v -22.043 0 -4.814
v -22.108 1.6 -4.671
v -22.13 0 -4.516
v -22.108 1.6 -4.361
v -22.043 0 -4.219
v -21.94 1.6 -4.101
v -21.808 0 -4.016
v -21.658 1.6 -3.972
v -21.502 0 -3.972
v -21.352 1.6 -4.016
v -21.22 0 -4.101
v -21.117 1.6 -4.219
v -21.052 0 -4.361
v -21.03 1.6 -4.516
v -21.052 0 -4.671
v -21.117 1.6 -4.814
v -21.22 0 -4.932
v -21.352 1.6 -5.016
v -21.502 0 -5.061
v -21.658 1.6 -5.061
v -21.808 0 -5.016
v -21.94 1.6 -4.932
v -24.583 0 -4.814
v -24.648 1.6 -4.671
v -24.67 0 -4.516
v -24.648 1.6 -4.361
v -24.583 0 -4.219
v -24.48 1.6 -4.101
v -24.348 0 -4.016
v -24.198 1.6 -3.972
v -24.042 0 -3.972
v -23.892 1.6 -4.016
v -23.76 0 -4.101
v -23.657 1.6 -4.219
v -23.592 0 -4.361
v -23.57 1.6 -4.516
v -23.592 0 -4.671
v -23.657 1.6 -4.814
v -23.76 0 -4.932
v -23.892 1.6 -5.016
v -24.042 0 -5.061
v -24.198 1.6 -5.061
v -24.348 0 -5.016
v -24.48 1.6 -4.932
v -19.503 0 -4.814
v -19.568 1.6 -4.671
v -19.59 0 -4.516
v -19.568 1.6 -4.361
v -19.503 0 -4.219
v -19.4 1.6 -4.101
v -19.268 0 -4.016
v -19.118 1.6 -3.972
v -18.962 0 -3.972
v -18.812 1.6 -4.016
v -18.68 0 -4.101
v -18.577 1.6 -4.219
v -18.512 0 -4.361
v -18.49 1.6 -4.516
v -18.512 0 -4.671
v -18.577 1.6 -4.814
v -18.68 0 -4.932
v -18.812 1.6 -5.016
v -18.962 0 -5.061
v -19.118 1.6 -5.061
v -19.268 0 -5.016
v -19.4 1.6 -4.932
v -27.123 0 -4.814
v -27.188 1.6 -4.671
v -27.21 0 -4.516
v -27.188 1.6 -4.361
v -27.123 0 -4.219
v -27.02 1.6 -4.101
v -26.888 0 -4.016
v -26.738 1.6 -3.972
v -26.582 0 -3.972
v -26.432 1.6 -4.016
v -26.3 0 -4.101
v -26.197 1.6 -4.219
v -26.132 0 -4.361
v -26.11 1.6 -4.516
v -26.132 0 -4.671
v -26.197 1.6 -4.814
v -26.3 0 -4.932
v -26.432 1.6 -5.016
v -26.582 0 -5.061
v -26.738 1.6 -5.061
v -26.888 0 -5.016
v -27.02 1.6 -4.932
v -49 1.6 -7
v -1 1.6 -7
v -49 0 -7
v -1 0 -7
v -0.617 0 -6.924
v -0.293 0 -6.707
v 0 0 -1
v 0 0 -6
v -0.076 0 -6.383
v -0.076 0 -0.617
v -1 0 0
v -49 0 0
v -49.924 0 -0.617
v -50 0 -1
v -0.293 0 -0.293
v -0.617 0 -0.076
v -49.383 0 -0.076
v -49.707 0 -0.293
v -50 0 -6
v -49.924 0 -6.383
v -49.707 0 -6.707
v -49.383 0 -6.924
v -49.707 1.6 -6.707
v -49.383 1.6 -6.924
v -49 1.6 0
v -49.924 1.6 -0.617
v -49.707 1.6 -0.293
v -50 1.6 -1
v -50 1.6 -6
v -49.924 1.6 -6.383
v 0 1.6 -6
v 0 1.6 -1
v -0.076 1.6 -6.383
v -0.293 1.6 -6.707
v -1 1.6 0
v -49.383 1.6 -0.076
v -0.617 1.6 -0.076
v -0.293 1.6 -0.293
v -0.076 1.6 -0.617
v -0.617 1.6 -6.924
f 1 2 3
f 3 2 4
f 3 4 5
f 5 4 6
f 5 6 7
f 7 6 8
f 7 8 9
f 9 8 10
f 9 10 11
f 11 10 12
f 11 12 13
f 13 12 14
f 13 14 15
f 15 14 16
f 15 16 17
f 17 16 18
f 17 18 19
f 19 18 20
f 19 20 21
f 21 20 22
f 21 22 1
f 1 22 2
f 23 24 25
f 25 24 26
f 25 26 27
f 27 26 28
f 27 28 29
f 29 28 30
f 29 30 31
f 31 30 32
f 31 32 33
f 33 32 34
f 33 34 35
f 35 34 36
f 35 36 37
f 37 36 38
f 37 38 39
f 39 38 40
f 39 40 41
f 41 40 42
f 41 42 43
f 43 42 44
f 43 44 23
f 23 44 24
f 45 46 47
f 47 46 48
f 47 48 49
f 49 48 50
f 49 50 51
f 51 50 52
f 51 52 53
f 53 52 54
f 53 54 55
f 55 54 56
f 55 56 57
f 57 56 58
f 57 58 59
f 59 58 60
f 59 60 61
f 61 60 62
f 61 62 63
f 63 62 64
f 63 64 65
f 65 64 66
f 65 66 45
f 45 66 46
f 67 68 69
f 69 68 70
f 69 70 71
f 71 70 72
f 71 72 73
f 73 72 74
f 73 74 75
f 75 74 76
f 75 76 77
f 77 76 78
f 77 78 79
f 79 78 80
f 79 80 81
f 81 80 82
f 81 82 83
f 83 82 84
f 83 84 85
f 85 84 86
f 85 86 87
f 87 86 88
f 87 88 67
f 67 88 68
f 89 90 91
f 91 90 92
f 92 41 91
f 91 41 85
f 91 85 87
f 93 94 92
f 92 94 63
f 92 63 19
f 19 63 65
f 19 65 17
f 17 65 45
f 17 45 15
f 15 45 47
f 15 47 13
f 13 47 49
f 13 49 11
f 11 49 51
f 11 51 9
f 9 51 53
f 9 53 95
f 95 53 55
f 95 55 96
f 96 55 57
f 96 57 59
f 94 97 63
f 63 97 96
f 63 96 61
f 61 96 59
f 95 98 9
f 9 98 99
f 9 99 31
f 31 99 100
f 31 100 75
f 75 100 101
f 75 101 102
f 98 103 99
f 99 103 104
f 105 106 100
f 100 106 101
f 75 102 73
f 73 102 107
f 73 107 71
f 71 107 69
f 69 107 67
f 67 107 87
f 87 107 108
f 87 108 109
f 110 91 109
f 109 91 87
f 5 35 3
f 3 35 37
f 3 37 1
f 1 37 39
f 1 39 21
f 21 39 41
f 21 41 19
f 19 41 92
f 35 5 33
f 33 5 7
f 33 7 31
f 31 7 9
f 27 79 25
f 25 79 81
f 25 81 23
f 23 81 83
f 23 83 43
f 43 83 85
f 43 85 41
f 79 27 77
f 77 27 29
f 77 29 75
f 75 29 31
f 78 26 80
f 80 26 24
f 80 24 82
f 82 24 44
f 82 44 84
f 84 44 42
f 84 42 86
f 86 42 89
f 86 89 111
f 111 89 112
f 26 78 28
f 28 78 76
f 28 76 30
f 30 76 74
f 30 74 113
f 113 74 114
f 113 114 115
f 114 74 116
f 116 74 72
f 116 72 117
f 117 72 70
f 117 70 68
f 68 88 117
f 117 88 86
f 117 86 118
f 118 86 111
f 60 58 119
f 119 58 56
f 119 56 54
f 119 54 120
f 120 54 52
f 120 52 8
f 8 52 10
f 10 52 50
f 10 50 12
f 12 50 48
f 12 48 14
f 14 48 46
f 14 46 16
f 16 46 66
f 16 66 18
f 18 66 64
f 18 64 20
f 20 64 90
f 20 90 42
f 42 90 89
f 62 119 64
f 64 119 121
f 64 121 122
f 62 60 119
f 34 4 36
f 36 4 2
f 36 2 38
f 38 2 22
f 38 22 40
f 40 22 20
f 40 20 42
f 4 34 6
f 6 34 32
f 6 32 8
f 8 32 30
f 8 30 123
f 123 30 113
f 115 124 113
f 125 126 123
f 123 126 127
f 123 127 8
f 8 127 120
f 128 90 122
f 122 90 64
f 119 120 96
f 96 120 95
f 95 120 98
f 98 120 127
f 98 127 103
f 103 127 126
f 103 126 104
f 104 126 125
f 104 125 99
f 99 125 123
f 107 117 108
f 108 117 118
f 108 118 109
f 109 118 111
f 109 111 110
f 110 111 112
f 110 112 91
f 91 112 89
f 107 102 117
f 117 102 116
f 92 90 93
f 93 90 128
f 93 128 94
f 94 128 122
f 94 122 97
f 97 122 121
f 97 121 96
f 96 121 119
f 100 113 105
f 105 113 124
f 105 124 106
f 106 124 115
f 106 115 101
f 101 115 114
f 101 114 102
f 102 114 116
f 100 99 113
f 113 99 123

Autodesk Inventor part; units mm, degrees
ref_plane "YZ Plane" through (0, 0, 0) normal (1, 0, 0) x (0, 1, 0)
ref_plane "XZ Plane" through (0, 0, 0) normal (0, 1, 0) x (-1, 0, 0)
ref_plane "XY Plane" through (0, 0, 0) normal (0, 0, 1) x (1, 0, 0)
sketch "Szkic1" plane through (0, 0, 0) normal (0, 1, 0) x (-1, 0, 0)
  line L0 (0, 0) -> (50, 0)
  line L1 (50, 0) -> (50, -7)
  line L2 (50, -7) -> (0, -7)
  line L3 (0, -7) -> (0, 0)
  dimension "d0" = 50
  dimension "d1" = 7
extrude "Wyciągnięcie proste1" add sketch "Szkic1" along normal blind 1.6
fillet "Zaokrąglenie1" radius 1 4 edges at (0, 0.8, 0) (0, 0.8, -7) (-50, 0.8, 0) (-50, 0.8, -7)
sketch "Szkic2" plane through (0, 0, 0) normal (0, -1, 0) x (1, 0, 0)
  line L0 (-1, -7) -> (-49, -7) projected
  line L1 (-30, -19.9397) -> (-30, -7.5897) projected
  line L2 (-20, -7.5897) -> (-20, -19.9397) projected
  line L3 (-20, -7) -> (-30, -7)
  line L4 (-30, -7) -> (-30, -21)
  line L5 (-30, -21) -> (-20, -21)
  line L6 (-20, -21) -> (-20, -7)
  line L7 (-21, -20) -> (-29, -20)
  line L8 (-29, -20) -> (-29, -8)
  line L9 (-29, -8) -> (-21, -8)
  line L10 (-21, -8) -> (-21, -20)
  line L11 (-1, -7) -> (-49, -7) projected
  line L12 (-29, -8) -> (-21, -8)
  line L13 (-21, -8) -> (-21, -7)
  line L14 (-21, -7) -> (-29, -7)
  line L15 (-29, -7) -> (-29, -8)
  point P0 (0, 0)
  dimension "d5" = 14
extrude "Wyciągnięcie proste2" add sketch "Szkic2" against normal up to surface (1.6 mm away) contours L13 L9 L15 L0 | L10 L7 L8 L9
sketch "Szkic3" plane through (0, 1.6, 0) normal (0, 1, 0) x (1, 0, 0)
  line L0 (-28.2, 1.9426) -> (-28.2, 7.0897) projected
  line L1 (-17.5, 7.0897) -> (-17.5, 1.9426) projected
  line L2 (-28.2, 4.5162) -> (-17.5, 4.5162) construction
  circle A0 centre (-26.66, 4.5162) radius 0.55
  circle A1 centre (-24.12, 4.5162) radius 0.55
  circle A2 centre (-21.58, 4.5162) radius 0.55
  circle A3 centre (-19.04, 4.5162) radius 0.55
  point P0 (0, 0)
  dimension "d9" = 1.1
  dimension "d12" = 2.54
  dimension "d17" = 1.54
extrude "Wyciągnięcie proste3" cut sketch "Szkic3" against normal through all
fillet "Zaokrąglenie3" radius 0.5 2 edges at (-21, 0.8, -20) (-29, 0.8, -20)
sketch "Szkic6" plane through (0, 1.6, 0) normal (0, 1, 0) x (1, 0, 0)
  point P0 (0, 0)
sketch "Szkic7" plane through (0, 1.6, 0) normal (0, 1, 0) x (1, 0, 0)
  arc A0 (-28.5, 20) -> (-29, 19.5) centre (-28.5, 19.5) ccw projected
  line L0 (-29, 7.5) -> (-29, 19.5) projected
  arc A1 (-29.5, 7) -> (-29, 7.5) centre (-29.5, 7.5) ccw projected
  line L1 (-29.5, 7) -> (-49, 7) projected
  arc A2 (-49, 7) -> (-50, 6) centre (-49, 6) ccw projected
  line L2 (-50, 6) -> (-50, 1) projected
  arc A3 (-50, 1) -> (-49, 0) centre (-49, 1) ccw projected
  line L3 (-49, 0) -> (-1, 0) projected
  arc A4 (-1, 0) -> (0, 1) centre (-1, 1) ccw projected
  line L4 (0, 1) -> (0, 6) projected
  arc A5 (0, 6) -> (-1, 7) centre (-1, 6) ccw projected
  line L5 (-1, 7) -> (-20.5, 7) projected
  arc A6 (-21, 7.5) -> (-20.5, 7) centre (-20.5, 7.5) ccw projected
  line L6 (-21, 19.5) -> (-21, 7.5) projected
  arc A7 (-21, 19.5) -> (-21.5, 20) centre (-21.5, 19.5) ccw projected
  line L7 (-28.5, 20) -> (-21.5, 20) projected
  circle A8 centre (-21.58, 4.5162) radius 0.55 projected
  circle A9 centre (-24.12, 4.5162) radius 0.55 projected
  circle A10 centre (-19.04, 4.5162) radius 0.55 projected
  circle A11 centre (-26.66, 4.5162) radius 0.55 projected
  point P0 (0, 0)
sketch "Szkic8" plane through (0, 1.6, 0) normal (0, 1, 0) x (1, 0, 0)
  line L0 (-29.5, 7) -> (-49, 7) projected
  line L1 (-1, 7) -> (-20.5, 7) projected
  line L2 (-49, 7) -> (-1, 7)
  arc A0 (-28.5, 20) -> (-29, 19.5) centre (-28.5, 19.5) ccw projected
  line L3 (-29, 7.5) -> (-29, 19.5) projected
  arc A1 (-29.5, 7) -> (-29, 7.5) centre (-29.5, 7.5) ccw projected
  line L4 (-29.5, 7) -> (-49, 7) projected
  arc A2 (-49, 7) -> (-50, 6) centre (-49, 6) ccw projected
  line L5 (-50, 6) -> (-50, 1) projected
  arc A3 (-50, 1) -> (-49, 0) centre (-49, 1) ccw projected
  line L6 (-49, 0) -> (-1, 0) projected
  arc A4 (-1, 0) -> (0, 1) centre (-1, 1) ccw projected
  line L7 (0, 1) -> (0, 6) projected
  arc A5 (0, 6) -> (-1, 7) centre (-1, 6) ccw projected
  line L8 (-1, 7) -> (-20.5, 7) projected
  arc A6 (-21, 7.5) -> (-20.5, 7) centre (-20.5, 7.5) ccw projected
  line L9 (-21, 19.5) -> (-21, 7.5) projected
  arc A7 (-21, 19.5) -> (-21.5, 20) centre (-21.5, 19.5) ccw projected
  line L10 (-28.5, 20) -> (-21.5, 20) projected
  circle A8 centre (-21.58, 4.5162) radius 0.55 projected
  circle A9 centre (-24.12, 4.5162) radius 0.55 projected
  circle A10 centre (-19.04, 4.5162) radius 0.55 projected
  circle A11 centre (-26.66, 4.5162) radius 0.55 projected
  point P0 (0, 0)
extrude "Wyciągnięcie proste4" cut sketch "Szkic8" against normal through all contours A1 L3 A0 L10 A7 L9 A6 L2
properties part number "pcb_dolne"
